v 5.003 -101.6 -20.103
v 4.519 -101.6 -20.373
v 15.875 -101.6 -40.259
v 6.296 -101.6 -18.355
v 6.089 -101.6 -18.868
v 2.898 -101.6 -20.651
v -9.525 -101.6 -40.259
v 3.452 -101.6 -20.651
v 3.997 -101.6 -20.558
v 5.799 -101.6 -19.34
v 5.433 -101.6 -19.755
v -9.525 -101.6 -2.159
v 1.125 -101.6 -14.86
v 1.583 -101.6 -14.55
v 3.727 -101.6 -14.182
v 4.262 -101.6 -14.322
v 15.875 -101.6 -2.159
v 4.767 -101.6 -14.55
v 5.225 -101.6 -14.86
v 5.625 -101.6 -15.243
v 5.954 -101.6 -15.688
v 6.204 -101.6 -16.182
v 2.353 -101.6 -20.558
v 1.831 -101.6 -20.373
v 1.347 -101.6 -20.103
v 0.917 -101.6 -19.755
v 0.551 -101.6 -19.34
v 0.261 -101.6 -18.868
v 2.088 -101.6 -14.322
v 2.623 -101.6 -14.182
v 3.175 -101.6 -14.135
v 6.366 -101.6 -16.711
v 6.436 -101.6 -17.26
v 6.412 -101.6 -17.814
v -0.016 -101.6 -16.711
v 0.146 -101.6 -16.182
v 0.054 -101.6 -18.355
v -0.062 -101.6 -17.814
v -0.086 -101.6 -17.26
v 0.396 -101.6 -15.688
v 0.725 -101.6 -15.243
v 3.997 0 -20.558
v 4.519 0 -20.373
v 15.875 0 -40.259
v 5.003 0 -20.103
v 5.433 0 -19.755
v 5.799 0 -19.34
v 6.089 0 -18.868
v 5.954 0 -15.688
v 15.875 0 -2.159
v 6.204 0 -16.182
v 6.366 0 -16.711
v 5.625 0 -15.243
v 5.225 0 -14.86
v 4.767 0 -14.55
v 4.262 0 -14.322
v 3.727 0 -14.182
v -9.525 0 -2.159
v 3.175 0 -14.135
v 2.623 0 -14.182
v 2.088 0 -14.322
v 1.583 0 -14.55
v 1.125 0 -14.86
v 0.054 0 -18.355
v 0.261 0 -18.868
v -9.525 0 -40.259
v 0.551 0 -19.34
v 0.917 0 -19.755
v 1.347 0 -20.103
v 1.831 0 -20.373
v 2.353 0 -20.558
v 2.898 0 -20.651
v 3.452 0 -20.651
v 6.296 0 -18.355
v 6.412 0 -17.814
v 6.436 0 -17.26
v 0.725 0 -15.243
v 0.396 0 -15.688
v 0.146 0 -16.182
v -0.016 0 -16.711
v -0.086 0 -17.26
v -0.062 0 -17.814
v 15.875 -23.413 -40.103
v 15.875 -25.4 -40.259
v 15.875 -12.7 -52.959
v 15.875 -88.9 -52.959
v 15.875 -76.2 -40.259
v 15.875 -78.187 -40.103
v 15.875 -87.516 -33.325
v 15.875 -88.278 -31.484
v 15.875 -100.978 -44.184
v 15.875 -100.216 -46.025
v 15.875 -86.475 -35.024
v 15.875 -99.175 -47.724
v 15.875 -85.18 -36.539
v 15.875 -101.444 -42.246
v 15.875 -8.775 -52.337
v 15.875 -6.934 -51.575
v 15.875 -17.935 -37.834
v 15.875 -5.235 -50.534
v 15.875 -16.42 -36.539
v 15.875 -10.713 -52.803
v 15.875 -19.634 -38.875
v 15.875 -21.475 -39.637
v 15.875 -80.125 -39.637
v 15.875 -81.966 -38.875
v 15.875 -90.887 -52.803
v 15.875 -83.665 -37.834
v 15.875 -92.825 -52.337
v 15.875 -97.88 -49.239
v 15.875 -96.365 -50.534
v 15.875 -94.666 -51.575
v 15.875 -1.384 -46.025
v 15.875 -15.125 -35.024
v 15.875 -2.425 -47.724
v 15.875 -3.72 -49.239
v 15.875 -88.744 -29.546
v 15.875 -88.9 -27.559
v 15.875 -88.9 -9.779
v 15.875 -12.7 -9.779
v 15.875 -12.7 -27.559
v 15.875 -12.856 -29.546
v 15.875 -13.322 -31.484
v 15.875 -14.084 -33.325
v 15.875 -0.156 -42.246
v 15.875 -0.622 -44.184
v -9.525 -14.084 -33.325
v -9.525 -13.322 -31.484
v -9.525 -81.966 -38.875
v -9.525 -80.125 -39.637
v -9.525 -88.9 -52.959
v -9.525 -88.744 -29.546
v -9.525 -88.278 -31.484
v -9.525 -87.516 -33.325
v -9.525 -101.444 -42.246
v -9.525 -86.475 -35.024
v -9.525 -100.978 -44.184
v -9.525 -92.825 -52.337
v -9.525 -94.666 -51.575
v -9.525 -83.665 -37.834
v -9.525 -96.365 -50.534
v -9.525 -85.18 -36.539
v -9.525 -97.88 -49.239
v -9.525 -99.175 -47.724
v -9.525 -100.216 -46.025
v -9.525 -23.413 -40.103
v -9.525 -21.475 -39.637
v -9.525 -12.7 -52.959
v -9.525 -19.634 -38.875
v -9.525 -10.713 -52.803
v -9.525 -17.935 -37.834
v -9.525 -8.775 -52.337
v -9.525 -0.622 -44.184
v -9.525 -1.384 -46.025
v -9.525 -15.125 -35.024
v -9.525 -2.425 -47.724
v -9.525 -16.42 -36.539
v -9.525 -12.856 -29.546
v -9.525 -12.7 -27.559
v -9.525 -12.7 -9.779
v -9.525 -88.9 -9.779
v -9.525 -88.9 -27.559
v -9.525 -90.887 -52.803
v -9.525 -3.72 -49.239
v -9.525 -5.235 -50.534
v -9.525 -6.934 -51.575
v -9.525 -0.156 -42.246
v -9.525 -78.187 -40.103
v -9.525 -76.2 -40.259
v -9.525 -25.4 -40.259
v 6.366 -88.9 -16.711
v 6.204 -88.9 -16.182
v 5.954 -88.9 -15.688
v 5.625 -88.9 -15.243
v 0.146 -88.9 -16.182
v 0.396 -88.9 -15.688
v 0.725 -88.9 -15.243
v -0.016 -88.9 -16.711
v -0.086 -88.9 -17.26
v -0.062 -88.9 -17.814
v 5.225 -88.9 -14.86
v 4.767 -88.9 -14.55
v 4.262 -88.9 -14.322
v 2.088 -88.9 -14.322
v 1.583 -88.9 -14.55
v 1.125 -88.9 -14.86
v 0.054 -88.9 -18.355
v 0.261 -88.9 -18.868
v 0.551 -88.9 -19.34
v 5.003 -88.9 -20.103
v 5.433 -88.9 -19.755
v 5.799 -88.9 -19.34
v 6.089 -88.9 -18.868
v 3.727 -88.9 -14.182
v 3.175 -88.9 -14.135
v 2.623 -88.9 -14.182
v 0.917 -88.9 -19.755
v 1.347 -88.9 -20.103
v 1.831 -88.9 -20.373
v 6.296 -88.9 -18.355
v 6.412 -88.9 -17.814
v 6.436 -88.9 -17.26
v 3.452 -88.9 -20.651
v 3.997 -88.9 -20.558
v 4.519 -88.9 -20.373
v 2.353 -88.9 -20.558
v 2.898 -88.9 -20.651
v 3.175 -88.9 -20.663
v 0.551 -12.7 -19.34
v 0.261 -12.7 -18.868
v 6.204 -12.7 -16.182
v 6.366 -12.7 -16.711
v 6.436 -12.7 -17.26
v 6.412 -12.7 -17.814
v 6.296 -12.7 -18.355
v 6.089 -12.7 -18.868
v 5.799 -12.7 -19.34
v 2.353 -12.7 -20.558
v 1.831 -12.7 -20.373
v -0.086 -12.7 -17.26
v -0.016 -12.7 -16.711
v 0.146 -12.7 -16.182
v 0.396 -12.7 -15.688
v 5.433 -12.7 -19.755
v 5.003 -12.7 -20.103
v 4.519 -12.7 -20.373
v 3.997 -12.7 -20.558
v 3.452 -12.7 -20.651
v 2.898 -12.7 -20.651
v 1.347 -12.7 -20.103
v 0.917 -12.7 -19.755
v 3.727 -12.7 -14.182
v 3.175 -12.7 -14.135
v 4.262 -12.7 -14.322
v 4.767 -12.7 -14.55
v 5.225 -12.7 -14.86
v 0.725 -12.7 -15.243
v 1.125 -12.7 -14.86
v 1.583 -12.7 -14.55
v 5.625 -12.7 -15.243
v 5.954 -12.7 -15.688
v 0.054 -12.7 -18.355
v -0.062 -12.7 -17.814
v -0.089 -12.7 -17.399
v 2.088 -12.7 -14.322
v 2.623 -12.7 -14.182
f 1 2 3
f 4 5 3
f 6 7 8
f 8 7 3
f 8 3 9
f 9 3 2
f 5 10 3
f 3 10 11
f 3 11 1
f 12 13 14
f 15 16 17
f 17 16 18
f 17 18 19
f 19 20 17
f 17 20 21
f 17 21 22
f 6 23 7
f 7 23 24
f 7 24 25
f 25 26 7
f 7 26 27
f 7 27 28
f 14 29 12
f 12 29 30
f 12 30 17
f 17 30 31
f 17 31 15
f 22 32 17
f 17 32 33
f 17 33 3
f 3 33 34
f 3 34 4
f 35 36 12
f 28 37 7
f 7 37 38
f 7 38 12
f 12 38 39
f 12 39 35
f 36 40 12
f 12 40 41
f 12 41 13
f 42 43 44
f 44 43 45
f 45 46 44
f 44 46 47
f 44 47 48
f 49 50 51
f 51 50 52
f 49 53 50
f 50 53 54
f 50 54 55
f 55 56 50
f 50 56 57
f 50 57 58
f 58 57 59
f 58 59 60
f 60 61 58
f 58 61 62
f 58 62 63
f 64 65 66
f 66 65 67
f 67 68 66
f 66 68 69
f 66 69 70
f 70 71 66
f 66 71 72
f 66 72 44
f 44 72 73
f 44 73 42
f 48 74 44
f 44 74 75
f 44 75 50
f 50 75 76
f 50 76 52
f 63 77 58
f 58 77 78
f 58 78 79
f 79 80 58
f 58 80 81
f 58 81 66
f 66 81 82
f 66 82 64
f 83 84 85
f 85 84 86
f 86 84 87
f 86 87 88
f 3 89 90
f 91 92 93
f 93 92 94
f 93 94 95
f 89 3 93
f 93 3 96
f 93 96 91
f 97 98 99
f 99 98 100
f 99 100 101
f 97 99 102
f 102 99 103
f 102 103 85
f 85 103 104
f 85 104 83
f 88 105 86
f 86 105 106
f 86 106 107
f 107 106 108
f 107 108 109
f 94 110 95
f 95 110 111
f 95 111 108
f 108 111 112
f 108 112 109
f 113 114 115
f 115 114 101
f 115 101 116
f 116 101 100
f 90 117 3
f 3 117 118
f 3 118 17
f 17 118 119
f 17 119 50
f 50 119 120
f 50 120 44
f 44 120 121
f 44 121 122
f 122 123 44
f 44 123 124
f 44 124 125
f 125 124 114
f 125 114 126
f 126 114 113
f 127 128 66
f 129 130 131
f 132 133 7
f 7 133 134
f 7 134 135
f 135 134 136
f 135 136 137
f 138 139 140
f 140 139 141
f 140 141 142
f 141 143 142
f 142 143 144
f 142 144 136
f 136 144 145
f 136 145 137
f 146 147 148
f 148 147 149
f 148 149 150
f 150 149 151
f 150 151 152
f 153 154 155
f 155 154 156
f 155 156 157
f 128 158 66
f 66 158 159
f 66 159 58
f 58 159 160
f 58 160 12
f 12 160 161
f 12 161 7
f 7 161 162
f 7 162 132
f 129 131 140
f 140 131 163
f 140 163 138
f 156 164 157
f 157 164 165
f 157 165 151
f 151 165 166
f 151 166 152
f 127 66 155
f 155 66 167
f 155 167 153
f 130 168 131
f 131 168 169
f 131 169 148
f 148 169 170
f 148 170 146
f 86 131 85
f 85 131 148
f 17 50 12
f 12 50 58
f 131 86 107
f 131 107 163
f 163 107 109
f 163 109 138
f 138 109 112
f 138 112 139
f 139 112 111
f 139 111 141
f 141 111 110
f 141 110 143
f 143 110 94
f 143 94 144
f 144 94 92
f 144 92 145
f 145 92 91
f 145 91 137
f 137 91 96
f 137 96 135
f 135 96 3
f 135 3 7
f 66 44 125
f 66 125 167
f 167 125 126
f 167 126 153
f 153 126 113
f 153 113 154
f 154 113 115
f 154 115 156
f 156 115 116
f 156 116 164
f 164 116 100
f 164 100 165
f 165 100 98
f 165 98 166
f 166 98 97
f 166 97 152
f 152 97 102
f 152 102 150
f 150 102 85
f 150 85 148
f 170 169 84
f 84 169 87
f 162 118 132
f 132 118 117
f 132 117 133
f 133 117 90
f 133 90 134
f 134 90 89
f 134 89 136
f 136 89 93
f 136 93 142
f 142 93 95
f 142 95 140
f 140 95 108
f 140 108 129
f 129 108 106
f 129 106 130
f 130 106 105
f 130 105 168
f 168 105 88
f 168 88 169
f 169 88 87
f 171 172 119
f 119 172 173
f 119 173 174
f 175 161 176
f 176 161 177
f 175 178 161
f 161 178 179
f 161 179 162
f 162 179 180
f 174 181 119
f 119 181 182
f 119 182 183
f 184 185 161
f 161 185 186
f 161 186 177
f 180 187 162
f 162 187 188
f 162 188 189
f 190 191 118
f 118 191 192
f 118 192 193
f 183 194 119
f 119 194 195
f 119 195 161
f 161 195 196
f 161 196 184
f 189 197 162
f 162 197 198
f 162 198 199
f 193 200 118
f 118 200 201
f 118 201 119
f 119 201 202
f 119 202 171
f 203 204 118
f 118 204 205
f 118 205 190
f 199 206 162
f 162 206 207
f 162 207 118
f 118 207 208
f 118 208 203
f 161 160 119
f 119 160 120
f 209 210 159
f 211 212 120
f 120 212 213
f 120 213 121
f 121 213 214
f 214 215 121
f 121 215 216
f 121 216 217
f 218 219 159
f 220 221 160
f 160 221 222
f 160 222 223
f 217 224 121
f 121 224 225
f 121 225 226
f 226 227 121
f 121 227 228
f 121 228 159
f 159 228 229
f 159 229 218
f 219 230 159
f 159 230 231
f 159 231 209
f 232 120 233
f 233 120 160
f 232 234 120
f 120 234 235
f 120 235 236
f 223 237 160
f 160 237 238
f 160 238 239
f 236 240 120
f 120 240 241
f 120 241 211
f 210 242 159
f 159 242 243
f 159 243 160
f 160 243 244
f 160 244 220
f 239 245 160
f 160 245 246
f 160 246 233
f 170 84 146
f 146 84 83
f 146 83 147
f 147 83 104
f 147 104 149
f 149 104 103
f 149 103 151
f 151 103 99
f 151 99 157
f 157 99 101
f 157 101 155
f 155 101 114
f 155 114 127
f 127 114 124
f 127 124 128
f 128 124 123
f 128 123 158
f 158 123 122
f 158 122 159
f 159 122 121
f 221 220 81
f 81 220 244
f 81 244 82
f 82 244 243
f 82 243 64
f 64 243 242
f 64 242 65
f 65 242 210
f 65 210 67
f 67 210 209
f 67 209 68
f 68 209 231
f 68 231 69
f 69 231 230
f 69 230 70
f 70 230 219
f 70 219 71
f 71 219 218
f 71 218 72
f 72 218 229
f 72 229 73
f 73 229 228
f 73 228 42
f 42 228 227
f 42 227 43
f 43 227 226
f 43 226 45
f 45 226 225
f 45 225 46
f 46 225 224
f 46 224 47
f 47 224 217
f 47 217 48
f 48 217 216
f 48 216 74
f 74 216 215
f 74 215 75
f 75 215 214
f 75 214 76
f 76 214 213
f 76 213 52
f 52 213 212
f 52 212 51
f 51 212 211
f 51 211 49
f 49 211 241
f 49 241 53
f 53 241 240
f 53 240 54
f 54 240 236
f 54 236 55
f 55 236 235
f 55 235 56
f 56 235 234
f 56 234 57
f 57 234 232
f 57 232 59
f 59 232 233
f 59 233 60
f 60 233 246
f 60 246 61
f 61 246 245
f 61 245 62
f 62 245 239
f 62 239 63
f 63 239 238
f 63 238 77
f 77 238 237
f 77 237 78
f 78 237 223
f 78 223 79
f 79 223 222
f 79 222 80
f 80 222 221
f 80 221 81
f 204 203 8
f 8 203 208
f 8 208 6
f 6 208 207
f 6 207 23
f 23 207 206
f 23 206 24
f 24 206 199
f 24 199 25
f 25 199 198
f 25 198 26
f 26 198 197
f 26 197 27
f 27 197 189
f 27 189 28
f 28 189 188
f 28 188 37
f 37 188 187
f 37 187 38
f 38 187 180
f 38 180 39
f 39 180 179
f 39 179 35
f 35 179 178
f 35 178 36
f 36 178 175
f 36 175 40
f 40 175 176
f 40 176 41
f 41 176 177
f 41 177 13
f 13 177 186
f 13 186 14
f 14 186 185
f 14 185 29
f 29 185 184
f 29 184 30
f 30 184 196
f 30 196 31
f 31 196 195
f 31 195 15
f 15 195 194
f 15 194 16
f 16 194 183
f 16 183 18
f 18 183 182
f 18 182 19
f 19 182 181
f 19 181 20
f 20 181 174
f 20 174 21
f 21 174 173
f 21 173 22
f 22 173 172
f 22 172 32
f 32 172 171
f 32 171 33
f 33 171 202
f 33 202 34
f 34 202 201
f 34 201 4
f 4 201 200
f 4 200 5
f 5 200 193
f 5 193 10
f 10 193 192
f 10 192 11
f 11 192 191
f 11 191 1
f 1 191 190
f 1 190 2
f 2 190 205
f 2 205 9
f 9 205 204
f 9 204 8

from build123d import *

# Parameters (mm, degrees)
BOSS_EXTRUDE1_DEPTH     = 101.6
SKETCH3_W               = 25.4
SKETCH3_H               = 101.6
BOSS_EXTRUDE2_DEPTH     = 50.8
CUT_EXTRUDE2_DEPTH      = 25.4
SKETCH6_R               = 3.2639
CUT_EXTRUDE3_DEPTH      = 101.6
SKETCH7_W               = 15.875
SKETCH7_H               = 7.928770879
CUT_EXTRUDE4_DEPTH      = 1
CUT_EXTRUDE4_DEPTH_BACK = 102.6


with BuildPart() as part:
    # Sketch2 → Boss-Extrude1 (new body)
    with BuildSketch(Plane(origin=(0, 0, 0), x_dir=(1, 0, 0), z_dir=(0, 1, 0))):
        Polygon((0, 2.159), (0, 0), (-3.937, 0), (0, -5.769770879), (6.35, -5.769770879), (10.287, 0), (6.35, 0), (6.35, 2.159), align=None)
    extrude(amount=-BOSS_EXTRUDE1_DEPTH)

    # Sketch3 → Boss-Extrude2 (add)
    with BuildSketch(Plane(origin=(0, 0, -2.159), x_dir=(-1, 0, 0), z_dir=(0, 0, -1))):
        with Locations((-3.175, -50.8)):
            Rectangle(SKETCH3_W, SKETCH3_H)
    extrude(amount=BOSS_EXTRUDE2_DEPTH)

    # Sketch5 → Cut-Extrude2 (cut)
    with BuildSketch(Plane(origin=(15.875, 0, 0), x_dir=(0, 0, -1), z_dir=(1, 0, 0))):
        with BuildLine():
            ThreePointArc((52.959, -88.9), (49.239256121, -97.880256121), (40.259, -101.6))
            Line((40.259, -101.6), (52.959, -101.6))
            Line((52.959, -101.6), (52.959, -88.9))
        make_face()
        with BuildLine():
            Line((52.959, 0), (40.259, 0))
            ThreePointArc((40.259, 0), (49.239256121, -3.719743879), (52.959, -12.7))
            Line((52.959, -12.7), (52.959, 0))
        make_face()
        with BuildLine():
            Line((40.259, -76.2), (40.259, -25.4))
            ThreePointArc((40.259, -25.4), (36.539256121, -16.419743879), (27.559, -12.7))
            Line((27.559, -12.7), (9.779, -12.7))
            Line((9.779, -12.7), (9.779, -88.9))
            Line((9.779, -88.9), (27.559, -88.9))
            ThreePointArc((27.559, -88.9), (36.539256121, -85.180256121), (40.259, -76.2))
        make_face()
    extrude(amount=-CUT_EXTRUDE2_DEPTH, mode=Mode.SUBTRACT)

    # Sketch6 → Cut-Extrude3 (cut)
    with BuildSketch(Plane(origin=(0, 0, 0), x_dir=(1, 0, 0), z_dir=(0, 1, 0))):
        with Locations((3.175, 17.399)):
            Circle(SKETCH6_R)
    extrude(amount=-CUT_EXTRUDE3_DEPTH, mode=Mode.SUBTRACT)

    # Sketch7 → Cut-Extrude4 (cut, two sides)
    with BuildSketch(Plane(origin=(0, 0, 0), x_dir=(1, 0, 0), z_dir=(0, 1, 0))) as cut_extrude4_sk:
        with Locations((3.175, -1.805385439)):
            Rectangle(SKETCH7_W, SKETCH7_H)
    extrude(amount=CUT_EXTRUDE4_DEPTH, mode=Mode.SUBTRACT)
    extrude(cut_extrude4_sk.sketch, amount=-CUT_EXTRUDE4_DEPTH_BACK, mode=Mode.SUBTRACT)


solid = part.part
